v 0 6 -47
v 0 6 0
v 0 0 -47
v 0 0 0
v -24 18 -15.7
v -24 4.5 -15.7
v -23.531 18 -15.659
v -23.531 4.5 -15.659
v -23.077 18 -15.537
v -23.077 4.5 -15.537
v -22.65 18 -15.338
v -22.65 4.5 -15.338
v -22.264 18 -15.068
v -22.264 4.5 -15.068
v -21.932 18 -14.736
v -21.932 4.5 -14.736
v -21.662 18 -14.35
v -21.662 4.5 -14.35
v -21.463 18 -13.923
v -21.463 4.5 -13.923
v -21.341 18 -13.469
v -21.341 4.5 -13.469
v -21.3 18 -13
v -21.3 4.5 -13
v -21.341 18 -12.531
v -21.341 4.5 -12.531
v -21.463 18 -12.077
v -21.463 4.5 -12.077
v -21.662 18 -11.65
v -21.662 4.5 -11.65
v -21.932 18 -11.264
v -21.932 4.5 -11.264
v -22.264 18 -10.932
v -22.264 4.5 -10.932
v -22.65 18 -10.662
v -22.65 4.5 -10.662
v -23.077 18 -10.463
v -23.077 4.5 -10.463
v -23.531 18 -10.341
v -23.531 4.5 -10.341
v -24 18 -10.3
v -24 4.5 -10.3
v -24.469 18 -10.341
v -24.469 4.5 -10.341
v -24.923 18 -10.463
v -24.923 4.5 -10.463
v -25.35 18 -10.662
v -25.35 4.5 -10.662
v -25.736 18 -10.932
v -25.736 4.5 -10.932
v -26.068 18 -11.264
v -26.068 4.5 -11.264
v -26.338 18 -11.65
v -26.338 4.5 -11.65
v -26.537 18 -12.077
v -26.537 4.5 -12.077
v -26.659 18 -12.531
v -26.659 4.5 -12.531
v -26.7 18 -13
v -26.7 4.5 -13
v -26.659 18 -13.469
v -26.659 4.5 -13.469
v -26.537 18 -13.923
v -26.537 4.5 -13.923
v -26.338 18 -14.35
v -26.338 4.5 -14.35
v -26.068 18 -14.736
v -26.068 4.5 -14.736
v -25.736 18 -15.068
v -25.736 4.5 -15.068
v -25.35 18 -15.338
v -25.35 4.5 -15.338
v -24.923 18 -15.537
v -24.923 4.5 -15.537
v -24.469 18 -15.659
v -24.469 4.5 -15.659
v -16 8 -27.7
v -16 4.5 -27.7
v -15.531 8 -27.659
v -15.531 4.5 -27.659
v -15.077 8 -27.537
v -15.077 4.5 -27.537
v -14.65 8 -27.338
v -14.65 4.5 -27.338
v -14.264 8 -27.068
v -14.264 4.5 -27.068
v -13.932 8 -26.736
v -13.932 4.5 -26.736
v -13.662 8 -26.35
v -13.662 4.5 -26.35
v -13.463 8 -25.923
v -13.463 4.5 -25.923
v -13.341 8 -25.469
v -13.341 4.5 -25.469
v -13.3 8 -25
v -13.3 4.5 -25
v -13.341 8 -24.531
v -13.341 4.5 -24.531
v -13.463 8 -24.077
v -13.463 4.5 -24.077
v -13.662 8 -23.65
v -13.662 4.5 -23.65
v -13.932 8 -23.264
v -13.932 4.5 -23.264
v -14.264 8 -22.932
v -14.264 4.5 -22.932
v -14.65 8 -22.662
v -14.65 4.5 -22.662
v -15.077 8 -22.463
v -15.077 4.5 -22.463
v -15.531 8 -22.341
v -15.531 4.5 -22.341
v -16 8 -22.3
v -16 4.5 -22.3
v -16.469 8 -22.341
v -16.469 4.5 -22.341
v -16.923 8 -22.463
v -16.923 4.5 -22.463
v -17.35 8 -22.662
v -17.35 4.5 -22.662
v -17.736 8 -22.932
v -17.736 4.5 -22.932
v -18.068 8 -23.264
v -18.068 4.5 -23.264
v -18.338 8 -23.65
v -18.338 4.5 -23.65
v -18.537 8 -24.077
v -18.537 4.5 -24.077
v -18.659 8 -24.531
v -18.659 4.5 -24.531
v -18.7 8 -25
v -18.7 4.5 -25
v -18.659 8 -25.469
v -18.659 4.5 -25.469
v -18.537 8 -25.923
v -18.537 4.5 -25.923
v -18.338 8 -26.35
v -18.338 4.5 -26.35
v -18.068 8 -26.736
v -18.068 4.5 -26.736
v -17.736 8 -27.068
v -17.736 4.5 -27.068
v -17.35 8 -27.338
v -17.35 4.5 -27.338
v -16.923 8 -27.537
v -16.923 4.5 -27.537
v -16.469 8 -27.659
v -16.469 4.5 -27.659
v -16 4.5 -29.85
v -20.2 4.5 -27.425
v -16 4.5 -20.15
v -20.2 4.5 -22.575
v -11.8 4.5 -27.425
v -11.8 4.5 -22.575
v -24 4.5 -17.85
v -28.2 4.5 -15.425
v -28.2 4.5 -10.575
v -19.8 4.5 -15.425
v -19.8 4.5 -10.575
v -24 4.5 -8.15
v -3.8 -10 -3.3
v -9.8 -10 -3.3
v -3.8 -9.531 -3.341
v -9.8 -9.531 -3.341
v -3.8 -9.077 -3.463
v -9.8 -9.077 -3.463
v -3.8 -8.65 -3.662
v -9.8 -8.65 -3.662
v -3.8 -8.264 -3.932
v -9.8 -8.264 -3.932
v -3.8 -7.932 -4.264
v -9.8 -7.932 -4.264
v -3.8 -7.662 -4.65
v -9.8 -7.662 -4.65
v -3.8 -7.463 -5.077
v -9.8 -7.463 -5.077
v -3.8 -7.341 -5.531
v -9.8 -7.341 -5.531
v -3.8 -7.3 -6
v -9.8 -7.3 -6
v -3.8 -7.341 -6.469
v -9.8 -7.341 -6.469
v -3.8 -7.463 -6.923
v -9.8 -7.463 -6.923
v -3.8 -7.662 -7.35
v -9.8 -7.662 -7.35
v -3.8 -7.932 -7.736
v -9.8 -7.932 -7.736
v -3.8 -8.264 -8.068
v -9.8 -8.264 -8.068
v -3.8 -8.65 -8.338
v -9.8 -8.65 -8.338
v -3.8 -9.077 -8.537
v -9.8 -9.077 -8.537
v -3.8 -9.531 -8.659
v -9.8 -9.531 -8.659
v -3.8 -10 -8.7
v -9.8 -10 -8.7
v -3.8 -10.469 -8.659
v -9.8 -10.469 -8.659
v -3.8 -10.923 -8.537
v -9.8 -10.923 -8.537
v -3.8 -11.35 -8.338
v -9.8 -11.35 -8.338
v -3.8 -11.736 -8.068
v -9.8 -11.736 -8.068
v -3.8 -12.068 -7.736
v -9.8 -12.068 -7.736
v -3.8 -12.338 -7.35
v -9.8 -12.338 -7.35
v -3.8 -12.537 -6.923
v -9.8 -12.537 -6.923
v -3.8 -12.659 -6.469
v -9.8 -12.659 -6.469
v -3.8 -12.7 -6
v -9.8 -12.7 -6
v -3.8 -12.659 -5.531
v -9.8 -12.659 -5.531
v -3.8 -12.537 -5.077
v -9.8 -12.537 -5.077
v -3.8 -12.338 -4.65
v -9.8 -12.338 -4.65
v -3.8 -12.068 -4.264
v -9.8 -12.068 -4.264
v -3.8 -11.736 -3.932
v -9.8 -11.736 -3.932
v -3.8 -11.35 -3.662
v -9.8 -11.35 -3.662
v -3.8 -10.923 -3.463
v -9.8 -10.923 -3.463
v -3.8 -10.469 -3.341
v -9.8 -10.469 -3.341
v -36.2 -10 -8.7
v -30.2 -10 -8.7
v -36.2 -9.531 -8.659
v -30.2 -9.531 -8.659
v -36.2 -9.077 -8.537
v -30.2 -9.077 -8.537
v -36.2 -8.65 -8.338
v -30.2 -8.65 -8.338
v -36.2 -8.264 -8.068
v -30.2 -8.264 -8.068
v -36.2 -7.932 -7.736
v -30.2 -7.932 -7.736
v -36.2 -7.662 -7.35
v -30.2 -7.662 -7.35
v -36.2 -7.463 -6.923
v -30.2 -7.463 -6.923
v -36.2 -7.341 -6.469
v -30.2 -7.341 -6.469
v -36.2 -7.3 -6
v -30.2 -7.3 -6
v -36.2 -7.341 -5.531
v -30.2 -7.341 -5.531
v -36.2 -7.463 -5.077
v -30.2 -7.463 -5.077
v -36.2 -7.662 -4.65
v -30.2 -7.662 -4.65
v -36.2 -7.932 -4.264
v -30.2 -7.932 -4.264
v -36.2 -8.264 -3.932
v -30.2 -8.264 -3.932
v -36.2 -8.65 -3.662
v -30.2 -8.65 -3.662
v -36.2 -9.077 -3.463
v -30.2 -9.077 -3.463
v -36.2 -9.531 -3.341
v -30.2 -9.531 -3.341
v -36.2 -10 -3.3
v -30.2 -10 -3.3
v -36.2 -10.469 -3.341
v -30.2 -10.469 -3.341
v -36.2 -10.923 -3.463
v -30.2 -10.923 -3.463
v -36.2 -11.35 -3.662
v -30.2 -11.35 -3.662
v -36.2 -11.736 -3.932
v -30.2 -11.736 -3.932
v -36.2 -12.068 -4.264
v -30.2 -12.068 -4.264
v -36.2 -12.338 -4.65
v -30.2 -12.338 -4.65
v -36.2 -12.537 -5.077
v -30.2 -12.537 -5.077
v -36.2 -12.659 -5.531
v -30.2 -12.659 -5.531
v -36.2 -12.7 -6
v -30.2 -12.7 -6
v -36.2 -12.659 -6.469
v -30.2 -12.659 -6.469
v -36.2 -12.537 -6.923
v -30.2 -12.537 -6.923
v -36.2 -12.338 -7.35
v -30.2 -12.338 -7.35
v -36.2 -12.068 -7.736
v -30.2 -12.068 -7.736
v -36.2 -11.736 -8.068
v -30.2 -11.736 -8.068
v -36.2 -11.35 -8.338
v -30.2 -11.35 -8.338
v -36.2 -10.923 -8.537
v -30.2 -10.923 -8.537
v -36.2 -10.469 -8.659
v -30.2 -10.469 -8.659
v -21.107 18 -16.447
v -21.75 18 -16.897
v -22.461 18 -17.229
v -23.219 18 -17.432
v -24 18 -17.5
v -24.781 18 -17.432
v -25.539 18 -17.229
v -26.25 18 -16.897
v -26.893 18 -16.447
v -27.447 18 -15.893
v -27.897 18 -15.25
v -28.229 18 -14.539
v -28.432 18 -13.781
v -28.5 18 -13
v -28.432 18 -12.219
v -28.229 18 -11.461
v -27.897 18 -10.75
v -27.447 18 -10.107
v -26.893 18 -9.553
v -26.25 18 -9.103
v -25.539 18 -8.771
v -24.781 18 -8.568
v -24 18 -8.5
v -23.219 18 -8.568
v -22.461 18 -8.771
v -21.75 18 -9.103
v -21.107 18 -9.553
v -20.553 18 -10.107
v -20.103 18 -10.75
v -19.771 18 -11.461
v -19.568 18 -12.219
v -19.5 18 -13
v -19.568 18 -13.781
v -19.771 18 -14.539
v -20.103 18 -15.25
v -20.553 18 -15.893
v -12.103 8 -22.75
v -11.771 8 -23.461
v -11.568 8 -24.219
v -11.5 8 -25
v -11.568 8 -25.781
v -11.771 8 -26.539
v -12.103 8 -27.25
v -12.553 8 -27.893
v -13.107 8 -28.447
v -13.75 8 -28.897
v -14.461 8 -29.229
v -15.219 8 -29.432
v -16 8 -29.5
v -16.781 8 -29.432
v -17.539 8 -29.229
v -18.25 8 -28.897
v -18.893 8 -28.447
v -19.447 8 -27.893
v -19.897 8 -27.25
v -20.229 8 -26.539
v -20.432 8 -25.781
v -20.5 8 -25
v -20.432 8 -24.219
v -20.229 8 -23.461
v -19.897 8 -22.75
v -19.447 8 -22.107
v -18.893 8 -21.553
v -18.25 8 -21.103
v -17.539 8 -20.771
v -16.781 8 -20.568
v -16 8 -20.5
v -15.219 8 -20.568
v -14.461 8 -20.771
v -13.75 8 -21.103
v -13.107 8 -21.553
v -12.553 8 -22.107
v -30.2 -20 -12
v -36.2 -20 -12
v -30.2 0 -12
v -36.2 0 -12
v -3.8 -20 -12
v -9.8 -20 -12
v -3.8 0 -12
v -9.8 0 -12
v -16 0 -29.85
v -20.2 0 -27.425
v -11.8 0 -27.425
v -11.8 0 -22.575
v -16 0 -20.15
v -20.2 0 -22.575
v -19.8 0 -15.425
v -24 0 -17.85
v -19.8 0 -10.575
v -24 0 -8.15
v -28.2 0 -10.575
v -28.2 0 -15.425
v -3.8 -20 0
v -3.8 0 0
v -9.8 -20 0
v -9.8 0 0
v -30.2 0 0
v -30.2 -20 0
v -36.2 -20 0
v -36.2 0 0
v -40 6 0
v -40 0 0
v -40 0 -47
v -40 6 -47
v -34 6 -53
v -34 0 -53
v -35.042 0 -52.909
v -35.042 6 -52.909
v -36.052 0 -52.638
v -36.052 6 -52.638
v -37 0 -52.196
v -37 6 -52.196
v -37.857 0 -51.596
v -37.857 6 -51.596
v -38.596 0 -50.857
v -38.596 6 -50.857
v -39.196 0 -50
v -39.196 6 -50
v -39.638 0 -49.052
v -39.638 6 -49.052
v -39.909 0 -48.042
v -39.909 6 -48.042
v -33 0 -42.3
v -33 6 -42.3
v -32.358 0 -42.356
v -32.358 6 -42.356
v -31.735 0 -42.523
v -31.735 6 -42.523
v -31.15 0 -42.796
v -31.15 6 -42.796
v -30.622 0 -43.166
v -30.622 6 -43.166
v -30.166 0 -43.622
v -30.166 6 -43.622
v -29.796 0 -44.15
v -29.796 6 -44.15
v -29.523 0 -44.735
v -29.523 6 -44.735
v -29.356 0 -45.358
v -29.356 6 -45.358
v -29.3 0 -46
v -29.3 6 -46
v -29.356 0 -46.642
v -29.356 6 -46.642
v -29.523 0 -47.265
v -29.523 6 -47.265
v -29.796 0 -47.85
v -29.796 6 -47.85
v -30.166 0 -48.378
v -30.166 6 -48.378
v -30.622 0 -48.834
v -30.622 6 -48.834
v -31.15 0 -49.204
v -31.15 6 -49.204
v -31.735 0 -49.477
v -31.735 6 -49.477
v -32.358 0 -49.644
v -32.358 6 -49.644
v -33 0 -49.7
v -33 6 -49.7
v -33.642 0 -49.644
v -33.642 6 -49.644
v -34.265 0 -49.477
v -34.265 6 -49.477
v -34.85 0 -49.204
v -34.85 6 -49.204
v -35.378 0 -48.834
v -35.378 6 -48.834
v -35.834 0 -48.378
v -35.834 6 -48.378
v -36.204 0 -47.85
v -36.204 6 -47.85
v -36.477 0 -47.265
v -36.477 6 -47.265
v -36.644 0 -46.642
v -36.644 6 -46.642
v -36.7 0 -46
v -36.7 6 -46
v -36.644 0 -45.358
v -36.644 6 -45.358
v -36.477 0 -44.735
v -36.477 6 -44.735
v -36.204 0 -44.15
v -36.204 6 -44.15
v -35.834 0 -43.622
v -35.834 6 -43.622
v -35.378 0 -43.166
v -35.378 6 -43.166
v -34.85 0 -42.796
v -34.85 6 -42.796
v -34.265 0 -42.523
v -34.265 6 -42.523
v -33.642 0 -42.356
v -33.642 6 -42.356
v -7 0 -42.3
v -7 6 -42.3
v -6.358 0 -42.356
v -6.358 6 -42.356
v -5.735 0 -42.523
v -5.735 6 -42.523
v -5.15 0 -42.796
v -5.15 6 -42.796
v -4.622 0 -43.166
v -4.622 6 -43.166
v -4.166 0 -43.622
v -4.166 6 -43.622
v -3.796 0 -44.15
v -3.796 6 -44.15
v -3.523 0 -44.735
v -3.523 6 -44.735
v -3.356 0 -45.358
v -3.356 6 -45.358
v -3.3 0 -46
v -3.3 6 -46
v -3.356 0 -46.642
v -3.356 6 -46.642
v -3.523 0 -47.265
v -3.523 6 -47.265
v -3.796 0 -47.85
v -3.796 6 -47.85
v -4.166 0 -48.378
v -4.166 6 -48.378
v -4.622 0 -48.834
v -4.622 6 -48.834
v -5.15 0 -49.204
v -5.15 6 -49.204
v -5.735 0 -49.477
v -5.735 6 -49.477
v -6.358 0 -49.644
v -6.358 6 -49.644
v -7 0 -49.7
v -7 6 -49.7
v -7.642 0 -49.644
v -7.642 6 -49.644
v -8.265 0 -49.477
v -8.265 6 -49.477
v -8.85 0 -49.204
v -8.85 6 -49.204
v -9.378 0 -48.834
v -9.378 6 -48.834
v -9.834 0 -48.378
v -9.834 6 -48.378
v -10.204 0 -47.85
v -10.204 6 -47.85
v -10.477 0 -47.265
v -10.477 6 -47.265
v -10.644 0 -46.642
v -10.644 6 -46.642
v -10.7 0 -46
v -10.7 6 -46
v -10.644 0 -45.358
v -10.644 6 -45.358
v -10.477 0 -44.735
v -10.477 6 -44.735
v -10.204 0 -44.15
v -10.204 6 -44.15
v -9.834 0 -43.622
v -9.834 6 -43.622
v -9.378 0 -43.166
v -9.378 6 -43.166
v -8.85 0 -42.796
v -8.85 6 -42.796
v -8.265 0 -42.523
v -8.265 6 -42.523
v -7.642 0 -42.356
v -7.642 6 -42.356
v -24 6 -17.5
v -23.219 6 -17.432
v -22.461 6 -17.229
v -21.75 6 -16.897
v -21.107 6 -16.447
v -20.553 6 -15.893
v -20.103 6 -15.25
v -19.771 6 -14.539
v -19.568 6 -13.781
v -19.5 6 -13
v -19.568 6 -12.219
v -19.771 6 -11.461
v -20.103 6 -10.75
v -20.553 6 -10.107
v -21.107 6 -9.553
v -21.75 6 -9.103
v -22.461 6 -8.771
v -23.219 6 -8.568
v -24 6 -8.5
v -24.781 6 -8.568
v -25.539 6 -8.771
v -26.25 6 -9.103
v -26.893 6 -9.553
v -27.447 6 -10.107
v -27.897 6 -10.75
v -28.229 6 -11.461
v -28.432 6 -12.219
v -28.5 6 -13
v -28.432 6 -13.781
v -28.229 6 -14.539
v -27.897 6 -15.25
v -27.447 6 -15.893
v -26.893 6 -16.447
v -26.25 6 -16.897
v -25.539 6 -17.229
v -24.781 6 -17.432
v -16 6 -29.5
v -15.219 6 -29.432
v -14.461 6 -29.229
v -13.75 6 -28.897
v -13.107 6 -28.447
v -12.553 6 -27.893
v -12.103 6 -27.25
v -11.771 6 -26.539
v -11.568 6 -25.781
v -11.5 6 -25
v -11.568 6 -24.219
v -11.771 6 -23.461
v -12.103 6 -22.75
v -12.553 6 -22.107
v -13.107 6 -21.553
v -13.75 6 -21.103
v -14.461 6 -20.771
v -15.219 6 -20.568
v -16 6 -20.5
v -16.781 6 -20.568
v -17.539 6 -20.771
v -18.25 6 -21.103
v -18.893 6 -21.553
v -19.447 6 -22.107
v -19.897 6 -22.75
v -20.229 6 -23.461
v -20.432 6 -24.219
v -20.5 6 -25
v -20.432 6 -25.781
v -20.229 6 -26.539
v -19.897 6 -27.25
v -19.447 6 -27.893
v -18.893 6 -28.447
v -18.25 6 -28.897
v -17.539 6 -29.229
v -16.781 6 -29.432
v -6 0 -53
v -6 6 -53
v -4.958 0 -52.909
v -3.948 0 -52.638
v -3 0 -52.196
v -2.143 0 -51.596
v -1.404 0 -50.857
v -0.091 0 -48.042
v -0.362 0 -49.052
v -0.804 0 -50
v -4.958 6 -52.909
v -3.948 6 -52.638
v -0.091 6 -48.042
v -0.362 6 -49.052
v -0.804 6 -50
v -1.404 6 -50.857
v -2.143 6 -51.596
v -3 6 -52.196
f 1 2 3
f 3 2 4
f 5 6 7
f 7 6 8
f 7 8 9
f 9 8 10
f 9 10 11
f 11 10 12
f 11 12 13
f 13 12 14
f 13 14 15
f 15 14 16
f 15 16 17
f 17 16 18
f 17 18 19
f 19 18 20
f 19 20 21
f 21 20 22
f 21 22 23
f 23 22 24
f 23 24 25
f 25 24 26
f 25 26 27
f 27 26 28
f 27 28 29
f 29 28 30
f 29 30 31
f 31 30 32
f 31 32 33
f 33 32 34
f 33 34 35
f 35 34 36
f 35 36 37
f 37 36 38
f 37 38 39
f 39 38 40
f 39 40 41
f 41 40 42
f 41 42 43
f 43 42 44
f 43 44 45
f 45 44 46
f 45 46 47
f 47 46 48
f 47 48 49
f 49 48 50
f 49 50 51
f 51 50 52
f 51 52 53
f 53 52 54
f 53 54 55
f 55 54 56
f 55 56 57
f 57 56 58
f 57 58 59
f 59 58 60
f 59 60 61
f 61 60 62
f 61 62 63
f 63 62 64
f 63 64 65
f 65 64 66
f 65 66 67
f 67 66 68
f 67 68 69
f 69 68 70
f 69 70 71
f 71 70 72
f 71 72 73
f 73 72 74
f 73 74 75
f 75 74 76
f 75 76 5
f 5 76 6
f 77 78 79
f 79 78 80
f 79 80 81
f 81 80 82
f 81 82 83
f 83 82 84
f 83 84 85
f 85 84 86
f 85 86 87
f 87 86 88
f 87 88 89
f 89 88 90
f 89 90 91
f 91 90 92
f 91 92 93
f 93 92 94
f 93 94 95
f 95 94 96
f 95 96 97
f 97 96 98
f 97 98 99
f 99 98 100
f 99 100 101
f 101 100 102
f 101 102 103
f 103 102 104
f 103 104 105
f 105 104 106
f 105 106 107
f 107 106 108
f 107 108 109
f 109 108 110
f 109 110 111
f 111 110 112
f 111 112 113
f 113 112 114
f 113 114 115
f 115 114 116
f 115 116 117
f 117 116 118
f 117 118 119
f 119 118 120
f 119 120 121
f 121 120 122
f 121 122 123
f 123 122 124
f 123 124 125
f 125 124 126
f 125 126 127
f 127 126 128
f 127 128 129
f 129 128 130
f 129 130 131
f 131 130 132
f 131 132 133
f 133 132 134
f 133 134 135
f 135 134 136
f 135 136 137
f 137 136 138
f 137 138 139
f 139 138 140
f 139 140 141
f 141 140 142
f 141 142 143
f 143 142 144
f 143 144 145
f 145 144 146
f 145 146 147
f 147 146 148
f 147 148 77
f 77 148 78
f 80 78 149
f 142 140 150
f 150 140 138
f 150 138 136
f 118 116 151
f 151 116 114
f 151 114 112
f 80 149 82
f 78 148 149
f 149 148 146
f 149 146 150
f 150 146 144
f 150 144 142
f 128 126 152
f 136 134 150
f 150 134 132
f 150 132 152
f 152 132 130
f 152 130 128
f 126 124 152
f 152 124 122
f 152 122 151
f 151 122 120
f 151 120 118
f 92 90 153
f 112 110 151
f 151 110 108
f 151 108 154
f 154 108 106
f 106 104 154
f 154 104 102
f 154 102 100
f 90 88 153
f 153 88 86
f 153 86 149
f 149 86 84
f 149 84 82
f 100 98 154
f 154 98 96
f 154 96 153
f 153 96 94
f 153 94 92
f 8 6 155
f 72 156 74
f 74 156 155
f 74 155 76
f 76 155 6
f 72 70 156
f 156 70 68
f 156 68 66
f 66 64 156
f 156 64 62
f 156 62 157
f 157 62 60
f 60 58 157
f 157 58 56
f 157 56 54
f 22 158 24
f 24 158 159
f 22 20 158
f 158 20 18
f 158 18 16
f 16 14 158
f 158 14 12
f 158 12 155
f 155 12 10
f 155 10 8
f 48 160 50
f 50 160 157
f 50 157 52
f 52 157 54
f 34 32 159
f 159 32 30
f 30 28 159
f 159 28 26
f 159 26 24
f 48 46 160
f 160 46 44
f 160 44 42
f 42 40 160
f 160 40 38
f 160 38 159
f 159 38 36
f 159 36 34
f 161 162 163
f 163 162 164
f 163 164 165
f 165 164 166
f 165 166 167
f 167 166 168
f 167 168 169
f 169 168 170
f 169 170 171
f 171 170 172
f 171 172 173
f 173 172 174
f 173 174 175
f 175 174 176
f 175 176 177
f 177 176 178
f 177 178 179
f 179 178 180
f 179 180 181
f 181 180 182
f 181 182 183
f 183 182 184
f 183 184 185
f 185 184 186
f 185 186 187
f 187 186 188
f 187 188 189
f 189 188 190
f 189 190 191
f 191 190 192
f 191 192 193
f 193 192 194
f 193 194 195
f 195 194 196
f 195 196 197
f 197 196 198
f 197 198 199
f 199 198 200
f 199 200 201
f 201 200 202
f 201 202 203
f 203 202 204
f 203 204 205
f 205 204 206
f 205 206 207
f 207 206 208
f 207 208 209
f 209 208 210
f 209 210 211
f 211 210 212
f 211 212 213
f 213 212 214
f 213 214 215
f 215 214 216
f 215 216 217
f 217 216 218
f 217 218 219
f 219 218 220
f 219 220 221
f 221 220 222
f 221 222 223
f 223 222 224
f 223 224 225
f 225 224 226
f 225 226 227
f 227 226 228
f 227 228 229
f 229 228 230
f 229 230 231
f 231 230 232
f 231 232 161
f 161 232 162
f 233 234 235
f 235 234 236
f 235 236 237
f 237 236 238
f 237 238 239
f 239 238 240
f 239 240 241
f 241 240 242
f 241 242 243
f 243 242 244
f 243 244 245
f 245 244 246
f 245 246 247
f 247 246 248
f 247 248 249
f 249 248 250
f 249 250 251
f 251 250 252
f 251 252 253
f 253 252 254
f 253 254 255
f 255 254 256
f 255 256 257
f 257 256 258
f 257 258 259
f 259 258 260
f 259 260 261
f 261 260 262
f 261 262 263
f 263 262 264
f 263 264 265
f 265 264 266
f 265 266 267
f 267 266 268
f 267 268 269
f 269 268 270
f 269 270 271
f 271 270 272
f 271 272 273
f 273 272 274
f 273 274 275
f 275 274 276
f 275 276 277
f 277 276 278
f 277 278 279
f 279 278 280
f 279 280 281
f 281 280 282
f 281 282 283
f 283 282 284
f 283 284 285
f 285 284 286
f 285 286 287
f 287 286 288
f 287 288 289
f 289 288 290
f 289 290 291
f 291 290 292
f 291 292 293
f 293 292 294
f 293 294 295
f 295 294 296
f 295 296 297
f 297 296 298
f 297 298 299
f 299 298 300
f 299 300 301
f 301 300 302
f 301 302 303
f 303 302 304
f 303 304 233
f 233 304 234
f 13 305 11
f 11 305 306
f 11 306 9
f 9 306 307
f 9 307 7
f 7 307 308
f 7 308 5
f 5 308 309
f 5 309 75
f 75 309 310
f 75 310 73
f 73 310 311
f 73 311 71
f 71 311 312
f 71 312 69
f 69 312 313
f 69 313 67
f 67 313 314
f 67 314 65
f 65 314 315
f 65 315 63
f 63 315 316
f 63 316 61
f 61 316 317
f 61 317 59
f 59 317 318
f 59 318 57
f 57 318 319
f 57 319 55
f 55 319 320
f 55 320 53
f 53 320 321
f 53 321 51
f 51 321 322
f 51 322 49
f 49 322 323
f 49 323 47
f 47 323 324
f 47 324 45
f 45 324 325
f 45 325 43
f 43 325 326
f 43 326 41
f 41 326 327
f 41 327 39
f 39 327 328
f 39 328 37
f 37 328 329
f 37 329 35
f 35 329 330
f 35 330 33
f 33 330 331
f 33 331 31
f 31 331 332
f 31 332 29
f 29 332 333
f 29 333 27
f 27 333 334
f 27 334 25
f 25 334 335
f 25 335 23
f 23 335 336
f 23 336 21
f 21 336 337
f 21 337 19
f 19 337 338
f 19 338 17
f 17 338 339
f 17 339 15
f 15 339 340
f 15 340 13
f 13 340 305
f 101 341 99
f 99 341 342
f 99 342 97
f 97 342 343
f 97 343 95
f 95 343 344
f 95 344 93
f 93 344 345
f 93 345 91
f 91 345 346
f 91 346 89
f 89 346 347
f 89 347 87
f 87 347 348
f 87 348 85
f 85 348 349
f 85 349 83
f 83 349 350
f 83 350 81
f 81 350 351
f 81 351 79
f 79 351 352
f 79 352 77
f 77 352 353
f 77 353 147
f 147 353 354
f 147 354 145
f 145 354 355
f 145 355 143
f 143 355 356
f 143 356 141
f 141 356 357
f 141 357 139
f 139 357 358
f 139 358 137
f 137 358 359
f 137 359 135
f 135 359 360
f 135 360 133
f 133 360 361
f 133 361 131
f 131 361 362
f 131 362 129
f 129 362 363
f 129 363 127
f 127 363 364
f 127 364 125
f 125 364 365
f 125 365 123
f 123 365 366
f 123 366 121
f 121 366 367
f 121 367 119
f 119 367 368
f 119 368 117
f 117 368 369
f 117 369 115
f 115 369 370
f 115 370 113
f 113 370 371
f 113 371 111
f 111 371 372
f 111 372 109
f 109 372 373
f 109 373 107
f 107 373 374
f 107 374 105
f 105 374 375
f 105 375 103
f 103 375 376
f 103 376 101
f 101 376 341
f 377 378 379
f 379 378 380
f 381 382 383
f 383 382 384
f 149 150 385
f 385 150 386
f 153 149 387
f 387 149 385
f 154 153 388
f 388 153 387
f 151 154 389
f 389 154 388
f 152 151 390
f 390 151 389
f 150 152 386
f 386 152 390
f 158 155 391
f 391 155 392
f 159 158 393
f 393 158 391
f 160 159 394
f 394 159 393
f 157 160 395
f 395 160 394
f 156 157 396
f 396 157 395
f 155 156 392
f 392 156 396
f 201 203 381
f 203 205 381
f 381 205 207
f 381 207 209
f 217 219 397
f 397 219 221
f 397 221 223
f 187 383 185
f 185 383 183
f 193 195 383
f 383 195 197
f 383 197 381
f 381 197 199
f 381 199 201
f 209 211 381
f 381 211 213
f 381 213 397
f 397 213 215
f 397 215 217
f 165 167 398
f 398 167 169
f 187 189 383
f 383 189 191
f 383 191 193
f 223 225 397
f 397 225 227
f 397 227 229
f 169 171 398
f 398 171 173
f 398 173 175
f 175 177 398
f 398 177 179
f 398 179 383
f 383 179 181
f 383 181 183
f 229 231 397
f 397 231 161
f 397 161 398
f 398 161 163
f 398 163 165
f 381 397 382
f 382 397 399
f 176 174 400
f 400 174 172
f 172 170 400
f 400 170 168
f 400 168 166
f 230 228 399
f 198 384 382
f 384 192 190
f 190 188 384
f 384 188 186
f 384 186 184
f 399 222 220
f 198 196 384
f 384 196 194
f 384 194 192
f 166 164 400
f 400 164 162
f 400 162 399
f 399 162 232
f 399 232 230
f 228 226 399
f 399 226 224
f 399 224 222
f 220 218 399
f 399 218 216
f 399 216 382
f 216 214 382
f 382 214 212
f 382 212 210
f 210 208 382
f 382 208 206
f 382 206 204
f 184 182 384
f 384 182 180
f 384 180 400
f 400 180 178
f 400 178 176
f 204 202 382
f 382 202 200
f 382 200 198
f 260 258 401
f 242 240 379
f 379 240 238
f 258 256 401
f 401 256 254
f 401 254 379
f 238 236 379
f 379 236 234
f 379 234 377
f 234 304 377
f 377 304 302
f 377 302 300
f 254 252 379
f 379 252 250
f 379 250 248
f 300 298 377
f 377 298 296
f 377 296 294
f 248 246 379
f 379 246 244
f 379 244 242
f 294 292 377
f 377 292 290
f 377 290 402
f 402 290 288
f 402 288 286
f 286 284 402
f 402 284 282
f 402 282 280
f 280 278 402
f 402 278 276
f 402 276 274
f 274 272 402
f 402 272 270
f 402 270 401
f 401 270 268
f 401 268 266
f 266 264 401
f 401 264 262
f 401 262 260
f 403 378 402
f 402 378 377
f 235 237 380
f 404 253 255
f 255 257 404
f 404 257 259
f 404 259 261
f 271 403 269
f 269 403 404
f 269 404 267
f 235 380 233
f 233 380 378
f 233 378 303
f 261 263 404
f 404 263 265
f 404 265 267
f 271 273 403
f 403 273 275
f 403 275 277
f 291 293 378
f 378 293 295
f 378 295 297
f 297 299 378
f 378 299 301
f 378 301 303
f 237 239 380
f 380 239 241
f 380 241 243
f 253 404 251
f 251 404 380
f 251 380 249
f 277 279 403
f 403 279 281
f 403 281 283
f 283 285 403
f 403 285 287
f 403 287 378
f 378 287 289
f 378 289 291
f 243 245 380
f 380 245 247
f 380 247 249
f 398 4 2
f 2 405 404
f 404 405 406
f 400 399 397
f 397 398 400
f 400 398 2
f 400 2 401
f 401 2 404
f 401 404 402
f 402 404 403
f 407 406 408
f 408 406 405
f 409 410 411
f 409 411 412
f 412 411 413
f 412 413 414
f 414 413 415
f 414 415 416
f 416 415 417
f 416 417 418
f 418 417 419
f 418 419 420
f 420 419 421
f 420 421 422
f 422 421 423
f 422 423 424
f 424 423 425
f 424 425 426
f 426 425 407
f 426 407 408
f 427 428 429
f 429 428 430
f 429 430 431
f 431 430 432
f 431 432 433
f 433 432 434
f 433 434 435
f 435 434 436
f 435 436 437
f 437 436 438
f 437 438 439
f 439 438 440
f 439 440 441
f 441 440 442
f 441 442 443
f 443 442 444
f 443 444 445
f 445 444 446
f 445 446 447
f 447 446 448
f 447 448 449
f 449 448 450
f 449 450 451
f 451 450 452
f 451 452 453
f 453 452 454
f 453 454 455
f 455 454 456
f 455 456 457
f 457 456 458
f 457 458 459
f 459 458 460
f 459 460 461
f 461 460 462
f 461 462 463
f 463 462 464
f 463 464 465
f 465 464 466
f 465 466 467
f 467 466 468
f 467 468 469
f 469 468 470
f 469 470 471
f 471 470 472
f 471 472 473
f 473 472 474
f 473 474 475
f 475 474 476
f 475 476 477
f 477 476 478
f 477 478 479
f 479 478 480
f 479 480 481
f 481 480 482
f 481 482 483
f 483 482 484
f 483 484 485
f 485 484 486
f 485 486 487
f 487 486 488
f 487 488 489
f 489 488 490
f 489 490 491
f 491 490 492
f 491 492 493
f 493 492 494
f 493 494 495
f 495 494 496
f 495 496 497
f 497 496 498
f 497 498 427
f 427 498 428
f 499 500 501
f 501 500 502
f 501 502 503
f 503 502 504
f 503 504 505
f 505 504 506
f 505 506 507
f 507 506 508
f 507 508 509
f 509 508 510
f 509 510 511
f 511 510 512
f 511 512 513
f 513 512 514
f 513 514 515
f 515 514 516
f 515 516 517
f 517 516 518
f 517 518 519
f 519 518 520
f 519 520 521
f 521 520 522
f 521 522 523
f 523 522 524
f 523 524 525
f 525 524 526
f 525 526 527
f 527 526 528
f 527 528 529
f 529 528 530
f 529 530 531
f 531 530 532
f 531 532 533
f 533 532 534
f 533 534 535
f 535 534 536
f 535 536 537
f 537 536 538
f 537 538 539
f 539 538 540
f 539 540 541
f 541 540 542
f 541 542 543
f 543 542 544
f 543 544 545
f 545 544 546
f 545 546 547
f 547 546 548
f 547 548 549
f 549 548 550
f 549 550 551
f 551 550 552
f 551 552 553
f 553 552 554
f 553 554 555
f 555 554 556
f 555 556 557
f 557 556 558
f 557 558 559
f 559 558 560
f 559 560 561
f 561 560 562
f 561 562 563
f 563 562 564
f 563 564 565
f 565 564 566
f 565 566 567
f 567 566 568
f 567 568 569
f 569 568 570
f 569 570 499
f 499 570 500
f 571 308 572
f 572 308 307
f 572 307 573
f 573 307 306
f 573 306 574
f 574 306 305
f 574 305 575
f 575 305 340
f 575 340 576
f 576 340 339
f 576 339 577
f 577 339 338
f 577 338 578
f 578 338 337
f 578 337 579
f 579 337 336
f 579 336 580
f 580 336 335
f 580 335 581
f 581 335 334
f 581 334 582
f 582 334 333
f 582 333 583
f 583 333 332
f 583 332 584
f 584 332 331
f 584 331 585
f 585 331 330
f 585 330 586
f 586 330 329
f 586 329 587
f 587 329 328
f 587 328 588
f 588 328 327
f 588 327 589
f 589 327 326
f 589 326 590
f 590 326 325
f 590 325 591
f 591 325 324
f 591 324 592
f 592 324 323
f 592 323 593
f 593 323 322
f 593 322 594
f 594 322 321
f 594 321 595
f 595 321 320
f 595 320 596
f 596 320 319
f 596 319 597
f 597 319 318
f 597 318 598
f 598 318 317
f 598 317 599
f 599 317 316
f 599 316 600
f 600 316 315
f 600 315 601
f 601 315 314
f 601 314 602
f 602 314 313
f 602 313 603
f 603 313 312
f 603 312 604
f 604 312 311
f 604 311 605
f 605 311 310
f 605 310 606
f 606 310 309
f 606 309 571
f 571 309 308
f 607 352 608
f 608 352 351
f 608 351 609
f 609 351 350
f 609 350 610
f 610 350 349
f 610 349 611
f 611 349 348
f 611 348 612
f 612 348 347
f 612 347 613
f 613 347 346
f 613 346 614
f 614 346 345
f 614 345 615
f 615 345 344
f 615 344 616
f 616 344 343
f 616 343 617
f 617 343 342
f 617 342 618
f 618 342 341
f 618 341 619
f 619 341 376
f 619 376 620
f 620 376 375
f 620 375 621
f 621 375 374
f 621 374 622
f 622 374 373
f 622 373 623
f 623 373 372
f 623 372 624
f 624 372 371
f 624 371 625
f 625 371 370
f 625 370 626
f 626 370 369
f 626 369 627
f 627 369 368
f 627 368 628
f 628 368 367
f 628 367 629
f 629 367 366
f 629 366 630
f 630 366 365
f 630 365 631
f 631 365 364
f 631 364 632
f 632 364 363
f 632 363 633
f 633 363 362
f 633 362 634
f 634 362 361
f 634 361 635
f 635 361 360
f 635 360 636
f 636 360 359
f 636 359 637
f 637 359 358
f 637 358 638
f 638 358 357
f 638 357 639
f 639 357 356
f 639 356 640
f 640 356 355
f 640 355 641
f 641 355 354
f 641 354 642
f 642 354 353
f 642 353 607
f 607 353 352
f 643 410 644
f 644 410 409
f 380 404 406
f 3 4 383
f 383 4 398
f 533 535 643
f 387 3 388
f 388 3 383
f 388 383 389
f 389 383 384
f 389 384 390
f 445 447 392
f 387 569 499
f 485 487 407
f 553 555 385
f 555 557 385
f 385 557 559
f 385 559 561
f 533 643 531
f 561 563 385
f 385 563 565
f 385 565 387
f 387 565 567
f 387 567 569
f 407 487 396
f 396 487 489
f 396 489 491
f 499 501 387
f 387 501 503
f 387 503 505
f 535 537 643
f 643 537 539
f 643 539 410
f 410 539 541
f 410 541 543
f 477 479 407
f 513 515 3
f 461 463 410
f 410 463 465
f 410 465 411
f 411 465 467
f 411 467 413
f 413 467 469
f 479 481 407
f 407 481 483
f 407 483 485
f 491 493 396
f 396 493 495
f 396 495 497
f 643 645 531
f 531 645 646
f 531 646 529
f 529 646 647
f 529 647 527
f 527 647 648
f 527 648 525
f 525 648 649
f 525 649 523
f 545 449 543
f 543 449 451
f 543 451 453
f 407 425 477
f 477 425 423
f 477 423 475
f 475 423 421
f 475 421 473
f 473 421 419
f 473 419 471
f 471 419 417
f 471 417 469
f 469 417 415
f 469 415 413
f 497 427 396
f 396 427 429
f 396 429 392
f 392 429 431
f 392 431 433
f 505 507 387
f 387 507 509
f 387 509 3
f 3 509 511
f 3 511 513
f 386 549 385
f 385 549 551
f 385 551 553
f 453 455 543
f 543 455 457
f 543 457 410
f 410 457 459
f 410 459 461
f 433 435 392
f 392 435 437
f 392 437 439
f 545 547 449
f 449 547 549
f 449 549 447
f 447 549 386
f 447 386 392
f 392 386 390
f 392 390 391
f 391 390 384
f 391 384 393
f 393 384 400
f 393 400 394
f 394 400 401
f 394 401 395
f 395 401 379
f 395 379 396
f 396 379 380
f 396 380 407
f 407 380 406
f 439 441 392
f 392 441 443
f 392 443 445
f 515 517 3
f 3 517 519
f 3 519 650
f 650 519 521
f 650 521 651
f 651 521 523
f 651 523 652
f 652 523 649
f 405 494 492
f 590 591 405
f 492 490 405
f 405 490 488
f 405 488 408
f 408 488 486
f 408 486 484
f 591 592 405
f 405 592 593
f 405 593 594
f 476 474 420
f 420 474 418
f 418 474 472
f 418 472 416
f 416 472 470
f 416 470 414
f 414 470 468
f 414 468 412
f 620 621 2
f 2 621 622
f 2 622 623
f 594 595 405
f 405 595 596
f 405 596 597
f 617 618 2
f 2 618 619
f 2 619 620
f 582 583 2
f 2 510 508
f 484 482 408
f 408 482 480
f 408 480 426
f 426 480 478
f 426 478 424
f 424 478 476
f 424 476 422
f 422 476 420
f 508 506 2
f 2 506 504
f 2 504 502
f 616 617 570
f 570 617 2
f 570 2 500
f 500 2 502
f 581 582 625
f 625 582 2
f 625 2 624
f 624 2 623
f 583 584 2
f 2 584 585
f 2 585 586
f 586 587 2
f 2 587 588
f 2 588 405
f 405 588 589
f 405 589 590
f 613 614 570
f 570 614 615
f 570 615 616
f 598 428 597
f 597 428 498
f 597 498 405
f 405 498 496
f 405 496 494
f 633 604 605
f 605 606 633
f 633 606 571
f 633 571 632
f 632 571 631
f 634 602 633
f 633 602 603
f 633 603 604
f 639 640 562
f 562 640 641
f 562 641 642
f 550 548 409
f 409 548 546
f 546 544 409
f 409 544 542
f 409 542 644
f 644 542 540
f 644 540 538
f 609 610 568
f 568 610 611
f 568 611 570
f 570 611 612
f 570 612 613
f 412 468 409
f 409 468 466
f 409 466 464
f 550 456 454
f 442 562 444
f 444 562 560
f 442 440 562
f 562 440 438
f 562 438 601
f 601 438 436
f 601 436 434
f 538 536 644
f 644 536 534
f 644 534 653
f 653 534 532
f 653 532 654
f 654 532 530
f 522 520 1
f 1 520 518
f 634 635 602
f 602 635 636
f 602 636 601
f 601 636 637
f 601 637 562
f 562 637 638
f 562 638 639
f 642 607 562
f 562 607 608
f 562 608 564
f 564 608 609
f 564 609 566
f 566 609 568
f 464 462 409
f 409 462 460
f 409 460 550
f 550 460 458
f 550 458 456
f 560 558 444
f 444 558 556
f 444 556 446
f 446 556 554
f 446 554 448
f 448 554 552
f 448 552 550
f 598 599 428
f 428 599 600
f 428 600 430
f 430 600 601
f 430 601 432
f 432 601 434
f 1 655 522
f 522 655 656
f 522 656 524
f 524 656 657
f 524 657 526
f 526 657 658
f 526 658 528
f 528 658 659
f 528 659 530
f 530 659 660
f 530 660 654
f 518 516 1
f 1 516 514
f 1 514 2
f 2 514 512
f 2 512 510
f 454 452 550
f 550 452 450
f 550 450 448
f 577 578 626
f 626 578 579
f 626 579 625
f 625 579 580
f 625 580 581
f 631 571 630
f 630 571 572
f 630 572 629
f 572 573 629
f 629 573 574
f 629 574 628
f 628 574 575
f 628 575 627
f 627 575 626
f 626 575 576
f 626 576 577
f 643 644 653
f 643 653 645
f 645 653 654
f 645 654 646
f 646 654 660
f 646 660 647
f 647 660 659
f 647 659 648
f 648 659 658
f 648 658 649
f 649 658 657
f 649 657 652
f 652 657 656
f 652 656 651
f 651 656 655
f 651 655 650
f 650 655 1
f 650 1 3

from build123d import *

# Parameters (mm, degrees)
SKETCH1_W             = 40
SKETCH1_H             = 53
BOSS_EXTRUDE1_DEPTH   = 6
SKETCH16_R            = 4.5
BOSS_EXTRUDE3_DEPTH   = 2
SKETCH16_3_R          = 4.5
BOSS_EXTRUDE4_DEPTH   = 12
CUT_EXTRUDE1_DEPTH    = 4.5
F_5_4MM_DOWEL_HOLE1_D = 5.4
F_7_4MM_DOWEL_HOLE2_D = 7.4
SKETCH2_W             = 6
SKETCH2_H             = 12
BOSS_EXTRUDE2_DEPTH   = 20
F_5_4MM_DOWEL_HOLE3_D = 5.4
FILLET1_R             = 6
MIRROR2_OUTLINE_R     = 3.7
MIRROR2_DEPTH         = 6
MIRROR2_START         = 4.5
MIRROR2_2_OUTLINE_R   = 4.5
MIRROR2_2_OUTLINE_R_2 = 2.7
MIRROR2_2_DEPTH       = 13.5
MIRROR2_3_OUTLINE_R   = 4.5
MIRROR2_3_OUTLINE_R_2 = 2.7
MIRROR2_3_DEPTH       = 3.5
MIRROR2_4_DEPTH       = 1.5
MIRROR2_START_2       = -36.2
MIRROR2_5_OUTLINE_W   = 20
MIRROR2_5_OUTLINE_H   = 12
MIRROR2_5_OUTLINE_R   = 2.7
MIRROR2_5_DEPTH       = 6
MIRROR2_START_3       = -9.8
MIRROR2_6_OUTLINE_W   = 20
MIRROR2_6_OUTLINE_H   = 12
MIRROR2_6_OUTLINE_R   = 2.7
MIRROR2_6_DEPTH       = 6


# Read off the part's stored shape, not the designer's step: Mirror2
with BuildPart() as part:
    # Sketch1 → Boss-Extrude1 (new body)
    with BuildSketch(Plane(origin=(0, 0, 0), x_dir=(1, 0, 0), z_dir=(0, 1, 0))):
        with Locations((20, 26.5)):
            Rectangle(SKETCH1_W, SKETCH1_H)
    extrude(amount=BOSS_EXTRUDE1_DEPTH)

    # Sketch16 → Boss-Extrude3 (add)
    with BuildSketch(Plane(origin=(0, 6, 0), x_dir=(1, 0, 0), z_dir=(0, 1, 0))):
        with Locations(Location((16, 25, 0), (0, 0, 90))):
            Circle(SKETCH16_R)
    extrude(amount=BOSS_EXTRUDE3_DEPTH)

    # Sketch16<3> → Boss-Extrude4 (add)
    with BuildSketch(Plane(origin=(0, 6, 0), x_dir=(1, 0, 0), z_dir=(0, 1, 0))):
        with Locations(Location((24, 13, 0), (0, 0, 90))):
            Circle(SKETCH16_3_R)
    extrude(amount=BOSS_EXTRUDE4_DEPTH)

    # Sketch12 → Cut-Extrude1 (cut)
    with BuildSketch(Plane.XZ):
        Polygon((28.2, -10.575128869), (24, -8.150257739), (19.8, -10.575128869), (19.8, -15.424871131), (24, -17.849742261), (28.2, -15.424871131), align=None)
        Polygon((16, -20.150257739), (11.8, -22.575128869), (11.8, -27.424871131), (16, -29.849742261), (20.2, -27.424871131), (20.2, -22.575128869), align=None)
    extrude(amount=-CUT_EXTRUDE1_DEPTH, mode=Mode.SUBTRACT)

    # Ø5.4mm Dowel Hole1 (through all)
    with Locations(Plane(origin=(0, 0, 0), x_dir=(-1, 0, 0), z_dir=(0, -1, 0))):
        with Locations((-16, 25), (-24, 13)):
            Hole(F_5_4MM_DOWEL_HOLE1_D / 2)

    # Ø7.4mm Dowel Hole2 (through all)
    with Locations(Plane(origin=(0, 6, 0), x_dir=(1, 0, 0), z_dir=(0, 1, 0))):
        with Locations((7, 46)):
            f_7_4mm_dowel_hole2 = Hole(F_7_4MM_DOWEL_HOLE2_D / 2)

    # Sketch2 → Boss-Extrude2 (add)
    with BuildSketch(Plane.XZ):
        with Locations((6.8, -6)):
            Rectangle(SKETCH2_W, SKETCH2_H)
    boss_extrude2 = extrude(amount=BOSS_EXTRUDE2_DEPTH)

    # Ø5.4mm Dowel Hole3 (through all)
    with Locations(Plane(origin=(9.8, 0, 0), x_dir=(0, 0, -1), z_dir=(1, 0, 0))):
        with Locations((6, -10)):
            f_5_4mm_dowel_hole3 = Hole(F_5_4MM_DOWEL_HOLE3_D / 2)

    # Mirror1: Ø7.4mm Dowel Hole2, Boss-Extrude2, Ø5.4mm Dowel Hole3 across plane
    add(f_7_4mm_dowel_hole2.mirror(Plane(origin=(20, 0, 0), x_dir=(0, 0, 1), z_dir=(1, 0, 0))), mode=Mode.SUBTRACT)
    add(boss_extrude2.mirror(Plane(origin=(20, 0, 0), x_dir=(0, 0, 1), z_dir=(1, 0, 0))))
    add(f_5_4mm_dowel_hole3.mirror(Plane(origin=(20, 0, 0), x_dir=(0, 0, 1), z_dir=(1, 0, 0))), mode=Mode.SUBTRACT)

    # Fillet1
    fillet1_edges = [part.edges().sort_by_distance(p)[0] for p in [
        (0, 3, -53),
        (40, 3, -53),
    ]]
    fillet(fillet1_edges, radius=FILLET1_R)

    # Mirror2 outline → Mirror2 (add)
    with BuildSketch(Plane(origin=(0, 0, 0), x_dir=(1, 0, 0), z_dir=(0, 1, 0))):
        with BuildLine():
            Line((-6, 53), (-34, 53))
            ThreePointArc((-34, 53), (-38.242640687, 51.242640687), (-40, 47))
            Line((-40, 47), (-40, 0))
            Line((-40, 0), (0, 0))
            Line((0, 0), (0, 47))
            ThreePointArc((0, 47), (-1.757359313, 51.242640687), (-6, 53))
        make_face()
        Polygon((-19.8, 10.575128869), (-24, 8.150257739), (-28.2, 10.575128869), (-28.2, 15.424871131), (-24, 17.849742261), (-19.8, 15.424871131), align=None, mode=Mode.SUBTRACT)
        with Locations((-33, 46)):
            Circle(MIRROR2_OUTLINE_R, mode=Mode.SUBTRACT)
        with Locations((-7, 46)):
            Circle(MIRROR2_OUTLINE_R, mode=Mode.SUBTRACT)
        Polygon((-11.8, 27.424871131), (-11.8, 22.575128869), (-16, 20.150257739), (-20.2, 22.575128869), (-20.2, 27.424871131), (-16, 29.849742261), align=None, mode=Mode.SUBTRACT)
    extrude(amount=MIRROR2_DEPTH)

    # Mirror2 2 outline → Mirror2 2 (add)
    with BuildSketch(Plane(origin=(0, 0, 0), x_dir=(1, 0, 0), z_dir=(0, 1, 0)).offset(MIRROR2_START)):
        with Locations((-24, 13)):
            Circle(MIRROR2_2_OUTLINE_R)
        with Locations((-24, 13)):
            Circle(MIRROR2_2_OUTLINE_R_2, mode=Mode.SUBTRACT)
    extrude(amount=MIRROR2_2_DEPTH)

    # Mirror2 3 outline → Mirror2 3 (add)
    with BuildSketch(Plane(origin=(0, 0, 0), x_dir=(1, 0, 0), z_dir=(0, 1, 0)).offset(MIRROR2_START)):
        with Locations((-16, 25)):
            Circle(MIRROR2_3_OUTLINE_R)
        with Locations((-16, 25)):
            Circle(MIRROR2_3_OUTLINE_R_2, mode=Mode.SUBTRACT)
    extrude(amount=MIRROR2_3_DEPTH)

    # Mirror2 4 outline → Mirror2 4 (add)
    with BuildSketch(Plane(origin=(0, 0, 0), x_dir=(1, 0, 0), z_dir=(0, 1, 0)).offset(MIRROR2_START)):
        with BuildLine():
            ThreePointArc((-20.500893142, 15.829531975), (-20.102885683, 15.25), (-19.8, 14.615549442))
            Line((-19.8, 14.615549442), (-19.8, 15.424871131))
            Line((-19.8, 15.424871131), (-20.500893142, 15.829531975))
        make_face()
        with BuildLine():
            Line((-19.8, 10.575128869), (-19.8, 11.384450558))
            ThreePointArc((-19.8, 11.384450558), (-20.102885683, 10.75), (-20.500893142, 10.170468025))
            Line((-20.500893142, 10.170468025), (-19.8, 10.575128869))
        make_face()
        with BuildLine():
            ThreePointArc((-24.700893142, 17.445081417), (-24, 17.5), (-23.299106858, 17.445081417))
            Line((-23.299106858, 17.445081417), (-24, 17.849742261))
            Line((-24, 17.849742261), (-24.700893142, 17.445081417))
        make_face()
        with BuildLine():
            Line((-24, 8.150257739), (-23.299106858, 8.554918583))
            ThreePointArc((-23.299106858, 8.554918583), (-24, 8.5), (-24.700893142, 8.554918583))
            Line((-24.700893142, 8.554918583), (-24, 8.150257739))
        make_face()
        with BuildLine():
            ThreePointArc((-28.2, 14.615549442), (-27.897114317, 15.25), (-27.499106858, 15.829531975))
            Line((-27.499106858, 15.829531975), (-28.2, 15.424871131))
            Line((-28.2, 15.424871131), (-28.2, 14.615549442))
        make_face()
        with BuildLine():
            Line((-28.2, 10.575128869), (-27.499106858, 10.170468025))
            ThreePointArc((-27.499106858, 10.170468025), (-27.897114317, 10.75), (-28.2, 11.384450558))
            Line((-28.2, 11.384450558), (-28.2, 10.575128869))
        make_face()
        with BuildLine():
            ThreePointArc((-12.500893142, 27.829531975), (-12.102885683, 27.25), (-11.8, 26.615549442))
            Line((-11.8, 26.615549442), (-11.8, 27.424871131))
            Line((-11.8, 27.424871131), (-12.500893142, 27.829531975))
        make_face()
        with BuildLine():
            Line((-11.8, 22.575128869), (-11.8, 23.384450558))
            ThreePointArc((-11.8, 23.384450558), (-12.102885683, 22.75), (-12.500893142, 22.170468025))
            Line((-12.500893142, 22.170468025), (-11.8, 22.575128869))
        make_face()
        with BuildLine():
            ThreePointArc((-16.700893142, 29.445081417), (-16, 29.5), (-15.299106858, 29.445081417))
            Line((-15.299106858, 29.445081417), (-16, 29.849742261))
            Line((-16, 29.849742261), (-16.700893142, 29.445081417))
        make_face()
        with BuildLine():
            Line((-16, 20.150257739), (-15.299106858, 20.554918583))
            ThreePointArc((-15.299106858, 20.554918583), (-16, 20.5), (-16.700893142, 20.554918583))
            Line((-16.700893142, 20.554918583), (-16, 20.150257739))
        make_face()
        with BuildLine():
            ThreePointArc((-20.2, 26.615549442), (-19.897114317, 27.25), (-19.499106858, 27.829531975))
            Line((-19.499106858, 27.829531975), (-20.2, 27.424871131))
            Line((-20.2, 27.424871131), (-20.2, 26.615549442))
        make_face()
        with BuildLine():
            Line((-20.2, 22.575128869), (-19.499106858, 22.170468025))
            ThreePointArc((-19.499106858, 22.170468025), (-19.897114317, 22.75), (-20.2, 23.384450558))
            Line((-20.2, 23.384450558), (-20.2, 22.575128869))
        make_face()
    extrude(amount=MIRROR2_4_DEPTH)

    # Mirror2 5 outline → Mirror2 5 (add)
    with BuildSketch(Plane.YZ.offset(MIRROR2_START_2)):
        with Locations((-10, -6)):
            Rectangle(MIRROR2_5_OUTLINE_W, MIRROR2_5_OUTLINE_H)
        with Locations((-10, -6)):
            Circle(MIRROR2_5_OUTLINE_R, mode=Mode.SUBTRACT)
    extrude(amount=MIRROR2_5_DEPTH)

    # Mirror2 6 outline → Mirror2 6 (add)
    with BuildSketch(Plane.YZ.offset(MIRROR2_START_3)):
        with Locations((-10, -6)):
            Rectangle(MIRROR2_6_OUTLINE_W, MIRROR2_6_OUTLINE_H)
        with Locations((-10, -6)):
            Circle(MIRROR2_6_OUTLINE_R, mode=Mode.SUBTRACT)
    extrude(amount=MIRROR2_6_DEPTH)

    # Split1
    split(bisect_by=Plane(origin=(0, 0, 0), x_dir=(0, 0, 1), z_dir=(1, 0, 0)), keep=Keep.BOTTOM)


solid = part.part
